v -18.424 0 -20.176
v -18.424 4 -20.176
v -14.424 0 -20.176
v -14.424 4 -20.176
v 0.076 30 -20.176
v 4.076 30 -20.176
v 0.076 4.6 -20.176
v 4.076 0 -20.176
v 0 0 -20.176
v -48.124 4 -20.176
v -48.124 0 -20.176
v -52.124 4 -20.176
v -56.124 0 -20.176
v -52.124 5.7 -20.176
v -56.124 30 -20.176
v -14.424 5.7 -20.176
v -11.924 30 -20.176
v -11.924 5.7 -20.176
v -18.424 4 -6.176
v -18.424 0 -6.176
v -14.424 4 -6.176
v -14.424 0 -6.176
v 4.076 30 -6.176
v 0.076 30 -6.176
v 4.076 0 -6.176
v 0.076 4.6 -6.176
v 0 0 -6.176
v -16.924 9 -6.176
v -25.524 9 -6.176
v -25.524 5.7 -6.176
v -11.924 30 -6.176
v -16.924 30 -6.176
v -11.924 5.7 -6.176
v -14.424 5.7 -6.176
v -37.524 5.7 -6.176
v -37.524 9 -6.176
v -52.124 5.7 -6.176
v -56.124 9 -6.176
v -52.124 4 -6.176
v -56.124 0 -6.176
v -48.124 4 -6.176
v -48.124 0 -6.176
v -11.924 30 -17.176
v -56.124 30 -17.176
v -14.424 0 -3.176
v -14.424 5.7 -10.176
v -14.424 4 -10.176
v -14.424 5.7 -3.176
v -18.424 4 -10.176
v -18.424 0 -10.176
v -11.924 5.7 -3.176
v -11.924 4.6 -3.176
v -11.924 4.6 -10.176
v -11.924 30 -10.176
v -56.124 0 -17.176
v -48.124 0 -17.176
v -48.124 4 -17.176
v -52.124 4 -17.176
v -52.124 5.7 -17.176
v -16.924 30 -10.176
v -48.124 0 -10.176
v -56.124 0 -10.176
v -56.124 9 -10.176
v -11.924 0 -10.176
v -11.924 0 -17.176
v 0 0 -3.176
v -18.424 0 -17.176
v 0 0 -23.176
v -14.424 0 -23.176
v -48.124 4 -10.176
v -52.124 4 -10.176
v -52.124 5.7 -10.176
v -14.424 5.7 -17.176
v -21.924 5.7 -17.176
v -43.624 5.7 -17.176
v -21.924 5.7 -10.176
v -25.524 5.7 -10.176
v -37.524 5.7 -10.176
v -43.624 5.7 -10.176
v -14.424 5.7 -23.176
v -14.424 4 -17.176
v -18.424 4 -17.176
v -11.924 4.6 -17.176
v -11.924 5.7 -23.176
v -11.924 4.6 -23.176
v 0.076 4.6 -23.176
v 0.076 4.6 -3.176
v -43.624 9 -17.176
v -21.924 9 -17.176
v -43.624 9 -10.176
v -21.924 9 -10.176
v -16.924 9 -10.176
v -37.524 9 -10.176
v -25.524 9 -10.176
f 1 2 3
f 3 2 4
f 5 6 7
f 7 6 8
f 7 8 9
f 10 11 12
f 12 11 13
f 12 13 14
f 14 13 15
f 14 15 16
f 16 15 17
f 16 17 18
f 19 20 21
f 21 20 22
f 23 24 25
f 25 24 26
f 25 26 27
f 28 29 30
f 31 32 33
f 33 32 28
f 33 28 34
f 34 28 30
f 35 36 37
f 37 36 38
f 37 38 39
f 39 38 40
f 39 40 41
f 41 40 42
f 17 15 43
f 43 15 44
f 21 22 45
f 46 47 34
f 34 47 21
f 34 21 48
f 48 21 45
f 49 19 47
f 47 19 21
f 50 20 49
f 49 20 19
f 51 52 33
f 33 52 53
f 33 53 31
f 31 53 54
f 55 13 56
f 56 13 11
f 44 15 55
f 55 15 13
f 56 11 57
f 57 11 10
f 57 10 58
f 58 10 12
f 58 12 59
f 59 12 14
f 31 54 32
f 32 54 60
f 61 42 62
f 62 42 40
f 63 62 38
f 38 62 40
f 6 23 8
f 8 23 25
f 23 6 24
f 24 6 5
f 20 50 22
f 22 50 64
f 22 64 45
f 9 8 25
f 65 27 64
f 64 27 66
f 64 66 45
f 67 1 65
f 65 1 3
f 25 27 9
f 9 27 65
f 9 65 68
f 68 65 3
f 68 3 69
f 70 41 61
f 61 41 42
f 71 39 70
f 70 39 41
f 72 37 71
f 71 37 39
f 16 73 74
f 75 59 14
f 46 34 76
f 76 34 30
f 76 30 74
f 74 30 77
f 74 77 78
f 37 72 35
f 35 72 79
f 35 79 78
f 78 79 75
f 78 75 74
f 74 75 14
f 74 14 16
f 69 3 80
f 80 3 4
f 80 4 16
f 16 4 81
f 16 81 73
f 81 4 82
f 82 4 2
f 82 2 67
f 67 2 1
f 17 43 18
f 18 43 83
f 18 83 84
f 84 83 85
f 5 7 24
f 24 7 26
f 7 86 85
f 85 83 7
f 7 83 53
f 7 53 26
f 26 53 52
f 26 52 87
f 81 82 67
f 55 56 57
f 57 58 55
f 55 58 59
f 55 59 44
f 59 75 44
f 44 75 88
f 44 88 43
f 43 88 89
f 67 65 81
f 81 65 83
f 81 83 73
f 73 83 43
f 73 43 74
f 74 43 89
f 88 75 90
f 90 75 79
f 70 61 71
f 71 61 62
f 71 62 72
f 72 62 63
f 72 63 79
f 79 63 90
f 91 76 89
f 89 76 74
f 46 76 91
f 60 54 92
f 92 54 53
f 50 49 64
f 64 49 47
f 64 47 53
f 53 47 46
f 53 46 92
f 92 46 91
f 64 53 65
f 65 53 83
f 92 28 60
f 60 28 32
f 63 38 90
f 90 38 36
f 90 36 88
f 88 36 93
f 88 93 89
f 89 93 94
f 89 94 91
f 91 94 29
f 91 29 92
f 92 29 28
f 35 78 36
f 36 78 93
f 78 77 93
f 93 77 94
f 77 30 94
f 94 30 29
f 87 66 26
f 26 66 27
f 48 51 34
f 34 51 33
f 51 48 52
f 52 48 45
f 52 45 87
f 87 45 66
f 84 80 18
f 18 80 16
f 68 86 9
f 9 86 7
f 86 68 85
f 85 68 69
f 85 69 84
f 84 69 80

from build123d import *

# Parameters (mm, degrees)
CROQUIS1_W              = 60.2
CROQUIS1_H              = 14
SALIENTE_EXTRUIR1_DEPTH = 30
CROQUIS2_W              = 12
CROQUIS2_H              = 25.4
CORTAR_EXTRUIR1_DEPTH   = 14
CORTAR_EXTRUIR2_START   = -30
CROQUIS3_W              = 12.5
CROQUIS3_H              = 7
CROQUIS3_W_2            = 10
CORTAR_EXTRUIR2_DEPTH   = 30
CORTAR_EXTRUIR3_DEPTH   = 21
CROQUIS5_W              = 12
CROQUIS5_H              = 4
CORTAR_EXTRUIR4_DEPTH   = 3.3
SALIENTE_EXTRUIR2_DEPTH = 3
SALIENTE_EXTRUIR3_DEPTH = 3


with BuildPart() as part:
    # Croquis1 → Saliente-Extruir1 (new body)
    with BuildSketch(Plane(origin=(0, 0, 0), x_dir=(1, 0, 0), z_dir=(0, 1, 0))):
        with Locations((-26.023666378, 13.176470588)):
            Rectangle(CROQUIS1_W, CROQUIS1_H)
    extrude(amount=SALIENTE_EXTRUIR1_DEPTH)

    # Croquis2 → Cortar-Extruir1 (cut)
    with BuildSketch(Plane.XY.offset(-6.176470588)):
        Polygon((-48.123666378, 0), (-18.423666378, 0), (-18.423666378, 4), (-14.423666378, 4), (-14.423666378, 5.7), (-19.023666378, 5.7), (-50.023666378, 5.7), (-52.123666378, 5.7), (-52.123666378, 4), (-48.123666378, 4), align=None)
        with Locations((-5.923666378, 17.3)):
            Rectangle(CROQUIS2_W, CROQUIS2_H)
    extrude(amount=-CORTAR_EXTRUIR1_DEPTH, mode=Mode.SUBTRACT)

    # Croquis3 → Cortar-Extruir2 (cut)
    with BuildSketch(Plane(origin=(0, 30, 0), x_dir=(1, 0, 0), z_dir=(0, 1, 0)).offset(CORTAR_EXTRUIR2_START)):
        with Locations((-49.873666378, 13.676470588)):
            Rectangle(CROQUIS3_W, CROQUIS3_H)
        with Locations((-16.923666378, 13.676470588)):
            Rectangle(CROQUIS3_W_2, CROQUIS3_H)
    extrude(amount=CORTAR_EXTRUIR2_DEPTH, mode=Mode.SUBTRACT)

    # Croquis4 → Cortar-Extruir3 (cut)
    with BuildSketch(Plane(origin=(0, 30, 0), x_dir=(1, 0, 0), z_dir=(0, 1, 0))):
        Polygon((-43.623666378, 17.176470588), (-21.923666378, 17.176470588), (-21.923666378, 10.176470588), (-16.923666378, 10.176470588), (-16.923666378, 6.176470588), (-56.123666378, 6.176470588), (-56.123666378, 10.176470588), (-43.623666378, 10.176470588), align=None)
    extrude(amount=-CORTAR_EXTRUIR3_DEPTH, mode=Mode.SUBTRACT)

    # Croquis5 → Cortar-Extruir4 (cut)
    with BuildSketch(Plane(origin=(0, 9, 0), x_dir=(1, 0, 0), z_dir=(0, 1, 0))):
        with Locations((-31.523666378, 8.176470588)):
            Rectangle(CROQUIS5_W, CROQUIS5_H)
    extrude(amount=-CORTAR_EXTRUIR4_DEPTH, mode=Mode.SUBTRACT)

    # Croquis6 → Saliente-Extruir2 (add)
    with BuildSketch(Plane.XY.offset(-6.176470588)):
        Polygon((-14.423666378, 5.7), (-11.923666378, 5.7), (-11.923666378, 4.6), (0.076333622, 4.6), (0, 0), (-14.423666378, 0), align=None)
    extrude(amount=SALIENTE_EXTRUIR2_DEPTH)

    # Croquis7 → Saliente-Extruir3 (add)
    with BuildSketch(Plane(origin=(0, 0, -20.176470588), x_dir=(-1, 0, 0), z_dir=(0, 0, -1))):
        Polygon((14.423666378, 5.7), (11.923666378, 5.7), (11.923666378, 4.6), (-0.076333622, 4.6), (0, 0), (14.423666378, 0), align=None)
    extrude(amount=SALIENTE_EXTRUIR3_DEPTH)


solid = part.part
